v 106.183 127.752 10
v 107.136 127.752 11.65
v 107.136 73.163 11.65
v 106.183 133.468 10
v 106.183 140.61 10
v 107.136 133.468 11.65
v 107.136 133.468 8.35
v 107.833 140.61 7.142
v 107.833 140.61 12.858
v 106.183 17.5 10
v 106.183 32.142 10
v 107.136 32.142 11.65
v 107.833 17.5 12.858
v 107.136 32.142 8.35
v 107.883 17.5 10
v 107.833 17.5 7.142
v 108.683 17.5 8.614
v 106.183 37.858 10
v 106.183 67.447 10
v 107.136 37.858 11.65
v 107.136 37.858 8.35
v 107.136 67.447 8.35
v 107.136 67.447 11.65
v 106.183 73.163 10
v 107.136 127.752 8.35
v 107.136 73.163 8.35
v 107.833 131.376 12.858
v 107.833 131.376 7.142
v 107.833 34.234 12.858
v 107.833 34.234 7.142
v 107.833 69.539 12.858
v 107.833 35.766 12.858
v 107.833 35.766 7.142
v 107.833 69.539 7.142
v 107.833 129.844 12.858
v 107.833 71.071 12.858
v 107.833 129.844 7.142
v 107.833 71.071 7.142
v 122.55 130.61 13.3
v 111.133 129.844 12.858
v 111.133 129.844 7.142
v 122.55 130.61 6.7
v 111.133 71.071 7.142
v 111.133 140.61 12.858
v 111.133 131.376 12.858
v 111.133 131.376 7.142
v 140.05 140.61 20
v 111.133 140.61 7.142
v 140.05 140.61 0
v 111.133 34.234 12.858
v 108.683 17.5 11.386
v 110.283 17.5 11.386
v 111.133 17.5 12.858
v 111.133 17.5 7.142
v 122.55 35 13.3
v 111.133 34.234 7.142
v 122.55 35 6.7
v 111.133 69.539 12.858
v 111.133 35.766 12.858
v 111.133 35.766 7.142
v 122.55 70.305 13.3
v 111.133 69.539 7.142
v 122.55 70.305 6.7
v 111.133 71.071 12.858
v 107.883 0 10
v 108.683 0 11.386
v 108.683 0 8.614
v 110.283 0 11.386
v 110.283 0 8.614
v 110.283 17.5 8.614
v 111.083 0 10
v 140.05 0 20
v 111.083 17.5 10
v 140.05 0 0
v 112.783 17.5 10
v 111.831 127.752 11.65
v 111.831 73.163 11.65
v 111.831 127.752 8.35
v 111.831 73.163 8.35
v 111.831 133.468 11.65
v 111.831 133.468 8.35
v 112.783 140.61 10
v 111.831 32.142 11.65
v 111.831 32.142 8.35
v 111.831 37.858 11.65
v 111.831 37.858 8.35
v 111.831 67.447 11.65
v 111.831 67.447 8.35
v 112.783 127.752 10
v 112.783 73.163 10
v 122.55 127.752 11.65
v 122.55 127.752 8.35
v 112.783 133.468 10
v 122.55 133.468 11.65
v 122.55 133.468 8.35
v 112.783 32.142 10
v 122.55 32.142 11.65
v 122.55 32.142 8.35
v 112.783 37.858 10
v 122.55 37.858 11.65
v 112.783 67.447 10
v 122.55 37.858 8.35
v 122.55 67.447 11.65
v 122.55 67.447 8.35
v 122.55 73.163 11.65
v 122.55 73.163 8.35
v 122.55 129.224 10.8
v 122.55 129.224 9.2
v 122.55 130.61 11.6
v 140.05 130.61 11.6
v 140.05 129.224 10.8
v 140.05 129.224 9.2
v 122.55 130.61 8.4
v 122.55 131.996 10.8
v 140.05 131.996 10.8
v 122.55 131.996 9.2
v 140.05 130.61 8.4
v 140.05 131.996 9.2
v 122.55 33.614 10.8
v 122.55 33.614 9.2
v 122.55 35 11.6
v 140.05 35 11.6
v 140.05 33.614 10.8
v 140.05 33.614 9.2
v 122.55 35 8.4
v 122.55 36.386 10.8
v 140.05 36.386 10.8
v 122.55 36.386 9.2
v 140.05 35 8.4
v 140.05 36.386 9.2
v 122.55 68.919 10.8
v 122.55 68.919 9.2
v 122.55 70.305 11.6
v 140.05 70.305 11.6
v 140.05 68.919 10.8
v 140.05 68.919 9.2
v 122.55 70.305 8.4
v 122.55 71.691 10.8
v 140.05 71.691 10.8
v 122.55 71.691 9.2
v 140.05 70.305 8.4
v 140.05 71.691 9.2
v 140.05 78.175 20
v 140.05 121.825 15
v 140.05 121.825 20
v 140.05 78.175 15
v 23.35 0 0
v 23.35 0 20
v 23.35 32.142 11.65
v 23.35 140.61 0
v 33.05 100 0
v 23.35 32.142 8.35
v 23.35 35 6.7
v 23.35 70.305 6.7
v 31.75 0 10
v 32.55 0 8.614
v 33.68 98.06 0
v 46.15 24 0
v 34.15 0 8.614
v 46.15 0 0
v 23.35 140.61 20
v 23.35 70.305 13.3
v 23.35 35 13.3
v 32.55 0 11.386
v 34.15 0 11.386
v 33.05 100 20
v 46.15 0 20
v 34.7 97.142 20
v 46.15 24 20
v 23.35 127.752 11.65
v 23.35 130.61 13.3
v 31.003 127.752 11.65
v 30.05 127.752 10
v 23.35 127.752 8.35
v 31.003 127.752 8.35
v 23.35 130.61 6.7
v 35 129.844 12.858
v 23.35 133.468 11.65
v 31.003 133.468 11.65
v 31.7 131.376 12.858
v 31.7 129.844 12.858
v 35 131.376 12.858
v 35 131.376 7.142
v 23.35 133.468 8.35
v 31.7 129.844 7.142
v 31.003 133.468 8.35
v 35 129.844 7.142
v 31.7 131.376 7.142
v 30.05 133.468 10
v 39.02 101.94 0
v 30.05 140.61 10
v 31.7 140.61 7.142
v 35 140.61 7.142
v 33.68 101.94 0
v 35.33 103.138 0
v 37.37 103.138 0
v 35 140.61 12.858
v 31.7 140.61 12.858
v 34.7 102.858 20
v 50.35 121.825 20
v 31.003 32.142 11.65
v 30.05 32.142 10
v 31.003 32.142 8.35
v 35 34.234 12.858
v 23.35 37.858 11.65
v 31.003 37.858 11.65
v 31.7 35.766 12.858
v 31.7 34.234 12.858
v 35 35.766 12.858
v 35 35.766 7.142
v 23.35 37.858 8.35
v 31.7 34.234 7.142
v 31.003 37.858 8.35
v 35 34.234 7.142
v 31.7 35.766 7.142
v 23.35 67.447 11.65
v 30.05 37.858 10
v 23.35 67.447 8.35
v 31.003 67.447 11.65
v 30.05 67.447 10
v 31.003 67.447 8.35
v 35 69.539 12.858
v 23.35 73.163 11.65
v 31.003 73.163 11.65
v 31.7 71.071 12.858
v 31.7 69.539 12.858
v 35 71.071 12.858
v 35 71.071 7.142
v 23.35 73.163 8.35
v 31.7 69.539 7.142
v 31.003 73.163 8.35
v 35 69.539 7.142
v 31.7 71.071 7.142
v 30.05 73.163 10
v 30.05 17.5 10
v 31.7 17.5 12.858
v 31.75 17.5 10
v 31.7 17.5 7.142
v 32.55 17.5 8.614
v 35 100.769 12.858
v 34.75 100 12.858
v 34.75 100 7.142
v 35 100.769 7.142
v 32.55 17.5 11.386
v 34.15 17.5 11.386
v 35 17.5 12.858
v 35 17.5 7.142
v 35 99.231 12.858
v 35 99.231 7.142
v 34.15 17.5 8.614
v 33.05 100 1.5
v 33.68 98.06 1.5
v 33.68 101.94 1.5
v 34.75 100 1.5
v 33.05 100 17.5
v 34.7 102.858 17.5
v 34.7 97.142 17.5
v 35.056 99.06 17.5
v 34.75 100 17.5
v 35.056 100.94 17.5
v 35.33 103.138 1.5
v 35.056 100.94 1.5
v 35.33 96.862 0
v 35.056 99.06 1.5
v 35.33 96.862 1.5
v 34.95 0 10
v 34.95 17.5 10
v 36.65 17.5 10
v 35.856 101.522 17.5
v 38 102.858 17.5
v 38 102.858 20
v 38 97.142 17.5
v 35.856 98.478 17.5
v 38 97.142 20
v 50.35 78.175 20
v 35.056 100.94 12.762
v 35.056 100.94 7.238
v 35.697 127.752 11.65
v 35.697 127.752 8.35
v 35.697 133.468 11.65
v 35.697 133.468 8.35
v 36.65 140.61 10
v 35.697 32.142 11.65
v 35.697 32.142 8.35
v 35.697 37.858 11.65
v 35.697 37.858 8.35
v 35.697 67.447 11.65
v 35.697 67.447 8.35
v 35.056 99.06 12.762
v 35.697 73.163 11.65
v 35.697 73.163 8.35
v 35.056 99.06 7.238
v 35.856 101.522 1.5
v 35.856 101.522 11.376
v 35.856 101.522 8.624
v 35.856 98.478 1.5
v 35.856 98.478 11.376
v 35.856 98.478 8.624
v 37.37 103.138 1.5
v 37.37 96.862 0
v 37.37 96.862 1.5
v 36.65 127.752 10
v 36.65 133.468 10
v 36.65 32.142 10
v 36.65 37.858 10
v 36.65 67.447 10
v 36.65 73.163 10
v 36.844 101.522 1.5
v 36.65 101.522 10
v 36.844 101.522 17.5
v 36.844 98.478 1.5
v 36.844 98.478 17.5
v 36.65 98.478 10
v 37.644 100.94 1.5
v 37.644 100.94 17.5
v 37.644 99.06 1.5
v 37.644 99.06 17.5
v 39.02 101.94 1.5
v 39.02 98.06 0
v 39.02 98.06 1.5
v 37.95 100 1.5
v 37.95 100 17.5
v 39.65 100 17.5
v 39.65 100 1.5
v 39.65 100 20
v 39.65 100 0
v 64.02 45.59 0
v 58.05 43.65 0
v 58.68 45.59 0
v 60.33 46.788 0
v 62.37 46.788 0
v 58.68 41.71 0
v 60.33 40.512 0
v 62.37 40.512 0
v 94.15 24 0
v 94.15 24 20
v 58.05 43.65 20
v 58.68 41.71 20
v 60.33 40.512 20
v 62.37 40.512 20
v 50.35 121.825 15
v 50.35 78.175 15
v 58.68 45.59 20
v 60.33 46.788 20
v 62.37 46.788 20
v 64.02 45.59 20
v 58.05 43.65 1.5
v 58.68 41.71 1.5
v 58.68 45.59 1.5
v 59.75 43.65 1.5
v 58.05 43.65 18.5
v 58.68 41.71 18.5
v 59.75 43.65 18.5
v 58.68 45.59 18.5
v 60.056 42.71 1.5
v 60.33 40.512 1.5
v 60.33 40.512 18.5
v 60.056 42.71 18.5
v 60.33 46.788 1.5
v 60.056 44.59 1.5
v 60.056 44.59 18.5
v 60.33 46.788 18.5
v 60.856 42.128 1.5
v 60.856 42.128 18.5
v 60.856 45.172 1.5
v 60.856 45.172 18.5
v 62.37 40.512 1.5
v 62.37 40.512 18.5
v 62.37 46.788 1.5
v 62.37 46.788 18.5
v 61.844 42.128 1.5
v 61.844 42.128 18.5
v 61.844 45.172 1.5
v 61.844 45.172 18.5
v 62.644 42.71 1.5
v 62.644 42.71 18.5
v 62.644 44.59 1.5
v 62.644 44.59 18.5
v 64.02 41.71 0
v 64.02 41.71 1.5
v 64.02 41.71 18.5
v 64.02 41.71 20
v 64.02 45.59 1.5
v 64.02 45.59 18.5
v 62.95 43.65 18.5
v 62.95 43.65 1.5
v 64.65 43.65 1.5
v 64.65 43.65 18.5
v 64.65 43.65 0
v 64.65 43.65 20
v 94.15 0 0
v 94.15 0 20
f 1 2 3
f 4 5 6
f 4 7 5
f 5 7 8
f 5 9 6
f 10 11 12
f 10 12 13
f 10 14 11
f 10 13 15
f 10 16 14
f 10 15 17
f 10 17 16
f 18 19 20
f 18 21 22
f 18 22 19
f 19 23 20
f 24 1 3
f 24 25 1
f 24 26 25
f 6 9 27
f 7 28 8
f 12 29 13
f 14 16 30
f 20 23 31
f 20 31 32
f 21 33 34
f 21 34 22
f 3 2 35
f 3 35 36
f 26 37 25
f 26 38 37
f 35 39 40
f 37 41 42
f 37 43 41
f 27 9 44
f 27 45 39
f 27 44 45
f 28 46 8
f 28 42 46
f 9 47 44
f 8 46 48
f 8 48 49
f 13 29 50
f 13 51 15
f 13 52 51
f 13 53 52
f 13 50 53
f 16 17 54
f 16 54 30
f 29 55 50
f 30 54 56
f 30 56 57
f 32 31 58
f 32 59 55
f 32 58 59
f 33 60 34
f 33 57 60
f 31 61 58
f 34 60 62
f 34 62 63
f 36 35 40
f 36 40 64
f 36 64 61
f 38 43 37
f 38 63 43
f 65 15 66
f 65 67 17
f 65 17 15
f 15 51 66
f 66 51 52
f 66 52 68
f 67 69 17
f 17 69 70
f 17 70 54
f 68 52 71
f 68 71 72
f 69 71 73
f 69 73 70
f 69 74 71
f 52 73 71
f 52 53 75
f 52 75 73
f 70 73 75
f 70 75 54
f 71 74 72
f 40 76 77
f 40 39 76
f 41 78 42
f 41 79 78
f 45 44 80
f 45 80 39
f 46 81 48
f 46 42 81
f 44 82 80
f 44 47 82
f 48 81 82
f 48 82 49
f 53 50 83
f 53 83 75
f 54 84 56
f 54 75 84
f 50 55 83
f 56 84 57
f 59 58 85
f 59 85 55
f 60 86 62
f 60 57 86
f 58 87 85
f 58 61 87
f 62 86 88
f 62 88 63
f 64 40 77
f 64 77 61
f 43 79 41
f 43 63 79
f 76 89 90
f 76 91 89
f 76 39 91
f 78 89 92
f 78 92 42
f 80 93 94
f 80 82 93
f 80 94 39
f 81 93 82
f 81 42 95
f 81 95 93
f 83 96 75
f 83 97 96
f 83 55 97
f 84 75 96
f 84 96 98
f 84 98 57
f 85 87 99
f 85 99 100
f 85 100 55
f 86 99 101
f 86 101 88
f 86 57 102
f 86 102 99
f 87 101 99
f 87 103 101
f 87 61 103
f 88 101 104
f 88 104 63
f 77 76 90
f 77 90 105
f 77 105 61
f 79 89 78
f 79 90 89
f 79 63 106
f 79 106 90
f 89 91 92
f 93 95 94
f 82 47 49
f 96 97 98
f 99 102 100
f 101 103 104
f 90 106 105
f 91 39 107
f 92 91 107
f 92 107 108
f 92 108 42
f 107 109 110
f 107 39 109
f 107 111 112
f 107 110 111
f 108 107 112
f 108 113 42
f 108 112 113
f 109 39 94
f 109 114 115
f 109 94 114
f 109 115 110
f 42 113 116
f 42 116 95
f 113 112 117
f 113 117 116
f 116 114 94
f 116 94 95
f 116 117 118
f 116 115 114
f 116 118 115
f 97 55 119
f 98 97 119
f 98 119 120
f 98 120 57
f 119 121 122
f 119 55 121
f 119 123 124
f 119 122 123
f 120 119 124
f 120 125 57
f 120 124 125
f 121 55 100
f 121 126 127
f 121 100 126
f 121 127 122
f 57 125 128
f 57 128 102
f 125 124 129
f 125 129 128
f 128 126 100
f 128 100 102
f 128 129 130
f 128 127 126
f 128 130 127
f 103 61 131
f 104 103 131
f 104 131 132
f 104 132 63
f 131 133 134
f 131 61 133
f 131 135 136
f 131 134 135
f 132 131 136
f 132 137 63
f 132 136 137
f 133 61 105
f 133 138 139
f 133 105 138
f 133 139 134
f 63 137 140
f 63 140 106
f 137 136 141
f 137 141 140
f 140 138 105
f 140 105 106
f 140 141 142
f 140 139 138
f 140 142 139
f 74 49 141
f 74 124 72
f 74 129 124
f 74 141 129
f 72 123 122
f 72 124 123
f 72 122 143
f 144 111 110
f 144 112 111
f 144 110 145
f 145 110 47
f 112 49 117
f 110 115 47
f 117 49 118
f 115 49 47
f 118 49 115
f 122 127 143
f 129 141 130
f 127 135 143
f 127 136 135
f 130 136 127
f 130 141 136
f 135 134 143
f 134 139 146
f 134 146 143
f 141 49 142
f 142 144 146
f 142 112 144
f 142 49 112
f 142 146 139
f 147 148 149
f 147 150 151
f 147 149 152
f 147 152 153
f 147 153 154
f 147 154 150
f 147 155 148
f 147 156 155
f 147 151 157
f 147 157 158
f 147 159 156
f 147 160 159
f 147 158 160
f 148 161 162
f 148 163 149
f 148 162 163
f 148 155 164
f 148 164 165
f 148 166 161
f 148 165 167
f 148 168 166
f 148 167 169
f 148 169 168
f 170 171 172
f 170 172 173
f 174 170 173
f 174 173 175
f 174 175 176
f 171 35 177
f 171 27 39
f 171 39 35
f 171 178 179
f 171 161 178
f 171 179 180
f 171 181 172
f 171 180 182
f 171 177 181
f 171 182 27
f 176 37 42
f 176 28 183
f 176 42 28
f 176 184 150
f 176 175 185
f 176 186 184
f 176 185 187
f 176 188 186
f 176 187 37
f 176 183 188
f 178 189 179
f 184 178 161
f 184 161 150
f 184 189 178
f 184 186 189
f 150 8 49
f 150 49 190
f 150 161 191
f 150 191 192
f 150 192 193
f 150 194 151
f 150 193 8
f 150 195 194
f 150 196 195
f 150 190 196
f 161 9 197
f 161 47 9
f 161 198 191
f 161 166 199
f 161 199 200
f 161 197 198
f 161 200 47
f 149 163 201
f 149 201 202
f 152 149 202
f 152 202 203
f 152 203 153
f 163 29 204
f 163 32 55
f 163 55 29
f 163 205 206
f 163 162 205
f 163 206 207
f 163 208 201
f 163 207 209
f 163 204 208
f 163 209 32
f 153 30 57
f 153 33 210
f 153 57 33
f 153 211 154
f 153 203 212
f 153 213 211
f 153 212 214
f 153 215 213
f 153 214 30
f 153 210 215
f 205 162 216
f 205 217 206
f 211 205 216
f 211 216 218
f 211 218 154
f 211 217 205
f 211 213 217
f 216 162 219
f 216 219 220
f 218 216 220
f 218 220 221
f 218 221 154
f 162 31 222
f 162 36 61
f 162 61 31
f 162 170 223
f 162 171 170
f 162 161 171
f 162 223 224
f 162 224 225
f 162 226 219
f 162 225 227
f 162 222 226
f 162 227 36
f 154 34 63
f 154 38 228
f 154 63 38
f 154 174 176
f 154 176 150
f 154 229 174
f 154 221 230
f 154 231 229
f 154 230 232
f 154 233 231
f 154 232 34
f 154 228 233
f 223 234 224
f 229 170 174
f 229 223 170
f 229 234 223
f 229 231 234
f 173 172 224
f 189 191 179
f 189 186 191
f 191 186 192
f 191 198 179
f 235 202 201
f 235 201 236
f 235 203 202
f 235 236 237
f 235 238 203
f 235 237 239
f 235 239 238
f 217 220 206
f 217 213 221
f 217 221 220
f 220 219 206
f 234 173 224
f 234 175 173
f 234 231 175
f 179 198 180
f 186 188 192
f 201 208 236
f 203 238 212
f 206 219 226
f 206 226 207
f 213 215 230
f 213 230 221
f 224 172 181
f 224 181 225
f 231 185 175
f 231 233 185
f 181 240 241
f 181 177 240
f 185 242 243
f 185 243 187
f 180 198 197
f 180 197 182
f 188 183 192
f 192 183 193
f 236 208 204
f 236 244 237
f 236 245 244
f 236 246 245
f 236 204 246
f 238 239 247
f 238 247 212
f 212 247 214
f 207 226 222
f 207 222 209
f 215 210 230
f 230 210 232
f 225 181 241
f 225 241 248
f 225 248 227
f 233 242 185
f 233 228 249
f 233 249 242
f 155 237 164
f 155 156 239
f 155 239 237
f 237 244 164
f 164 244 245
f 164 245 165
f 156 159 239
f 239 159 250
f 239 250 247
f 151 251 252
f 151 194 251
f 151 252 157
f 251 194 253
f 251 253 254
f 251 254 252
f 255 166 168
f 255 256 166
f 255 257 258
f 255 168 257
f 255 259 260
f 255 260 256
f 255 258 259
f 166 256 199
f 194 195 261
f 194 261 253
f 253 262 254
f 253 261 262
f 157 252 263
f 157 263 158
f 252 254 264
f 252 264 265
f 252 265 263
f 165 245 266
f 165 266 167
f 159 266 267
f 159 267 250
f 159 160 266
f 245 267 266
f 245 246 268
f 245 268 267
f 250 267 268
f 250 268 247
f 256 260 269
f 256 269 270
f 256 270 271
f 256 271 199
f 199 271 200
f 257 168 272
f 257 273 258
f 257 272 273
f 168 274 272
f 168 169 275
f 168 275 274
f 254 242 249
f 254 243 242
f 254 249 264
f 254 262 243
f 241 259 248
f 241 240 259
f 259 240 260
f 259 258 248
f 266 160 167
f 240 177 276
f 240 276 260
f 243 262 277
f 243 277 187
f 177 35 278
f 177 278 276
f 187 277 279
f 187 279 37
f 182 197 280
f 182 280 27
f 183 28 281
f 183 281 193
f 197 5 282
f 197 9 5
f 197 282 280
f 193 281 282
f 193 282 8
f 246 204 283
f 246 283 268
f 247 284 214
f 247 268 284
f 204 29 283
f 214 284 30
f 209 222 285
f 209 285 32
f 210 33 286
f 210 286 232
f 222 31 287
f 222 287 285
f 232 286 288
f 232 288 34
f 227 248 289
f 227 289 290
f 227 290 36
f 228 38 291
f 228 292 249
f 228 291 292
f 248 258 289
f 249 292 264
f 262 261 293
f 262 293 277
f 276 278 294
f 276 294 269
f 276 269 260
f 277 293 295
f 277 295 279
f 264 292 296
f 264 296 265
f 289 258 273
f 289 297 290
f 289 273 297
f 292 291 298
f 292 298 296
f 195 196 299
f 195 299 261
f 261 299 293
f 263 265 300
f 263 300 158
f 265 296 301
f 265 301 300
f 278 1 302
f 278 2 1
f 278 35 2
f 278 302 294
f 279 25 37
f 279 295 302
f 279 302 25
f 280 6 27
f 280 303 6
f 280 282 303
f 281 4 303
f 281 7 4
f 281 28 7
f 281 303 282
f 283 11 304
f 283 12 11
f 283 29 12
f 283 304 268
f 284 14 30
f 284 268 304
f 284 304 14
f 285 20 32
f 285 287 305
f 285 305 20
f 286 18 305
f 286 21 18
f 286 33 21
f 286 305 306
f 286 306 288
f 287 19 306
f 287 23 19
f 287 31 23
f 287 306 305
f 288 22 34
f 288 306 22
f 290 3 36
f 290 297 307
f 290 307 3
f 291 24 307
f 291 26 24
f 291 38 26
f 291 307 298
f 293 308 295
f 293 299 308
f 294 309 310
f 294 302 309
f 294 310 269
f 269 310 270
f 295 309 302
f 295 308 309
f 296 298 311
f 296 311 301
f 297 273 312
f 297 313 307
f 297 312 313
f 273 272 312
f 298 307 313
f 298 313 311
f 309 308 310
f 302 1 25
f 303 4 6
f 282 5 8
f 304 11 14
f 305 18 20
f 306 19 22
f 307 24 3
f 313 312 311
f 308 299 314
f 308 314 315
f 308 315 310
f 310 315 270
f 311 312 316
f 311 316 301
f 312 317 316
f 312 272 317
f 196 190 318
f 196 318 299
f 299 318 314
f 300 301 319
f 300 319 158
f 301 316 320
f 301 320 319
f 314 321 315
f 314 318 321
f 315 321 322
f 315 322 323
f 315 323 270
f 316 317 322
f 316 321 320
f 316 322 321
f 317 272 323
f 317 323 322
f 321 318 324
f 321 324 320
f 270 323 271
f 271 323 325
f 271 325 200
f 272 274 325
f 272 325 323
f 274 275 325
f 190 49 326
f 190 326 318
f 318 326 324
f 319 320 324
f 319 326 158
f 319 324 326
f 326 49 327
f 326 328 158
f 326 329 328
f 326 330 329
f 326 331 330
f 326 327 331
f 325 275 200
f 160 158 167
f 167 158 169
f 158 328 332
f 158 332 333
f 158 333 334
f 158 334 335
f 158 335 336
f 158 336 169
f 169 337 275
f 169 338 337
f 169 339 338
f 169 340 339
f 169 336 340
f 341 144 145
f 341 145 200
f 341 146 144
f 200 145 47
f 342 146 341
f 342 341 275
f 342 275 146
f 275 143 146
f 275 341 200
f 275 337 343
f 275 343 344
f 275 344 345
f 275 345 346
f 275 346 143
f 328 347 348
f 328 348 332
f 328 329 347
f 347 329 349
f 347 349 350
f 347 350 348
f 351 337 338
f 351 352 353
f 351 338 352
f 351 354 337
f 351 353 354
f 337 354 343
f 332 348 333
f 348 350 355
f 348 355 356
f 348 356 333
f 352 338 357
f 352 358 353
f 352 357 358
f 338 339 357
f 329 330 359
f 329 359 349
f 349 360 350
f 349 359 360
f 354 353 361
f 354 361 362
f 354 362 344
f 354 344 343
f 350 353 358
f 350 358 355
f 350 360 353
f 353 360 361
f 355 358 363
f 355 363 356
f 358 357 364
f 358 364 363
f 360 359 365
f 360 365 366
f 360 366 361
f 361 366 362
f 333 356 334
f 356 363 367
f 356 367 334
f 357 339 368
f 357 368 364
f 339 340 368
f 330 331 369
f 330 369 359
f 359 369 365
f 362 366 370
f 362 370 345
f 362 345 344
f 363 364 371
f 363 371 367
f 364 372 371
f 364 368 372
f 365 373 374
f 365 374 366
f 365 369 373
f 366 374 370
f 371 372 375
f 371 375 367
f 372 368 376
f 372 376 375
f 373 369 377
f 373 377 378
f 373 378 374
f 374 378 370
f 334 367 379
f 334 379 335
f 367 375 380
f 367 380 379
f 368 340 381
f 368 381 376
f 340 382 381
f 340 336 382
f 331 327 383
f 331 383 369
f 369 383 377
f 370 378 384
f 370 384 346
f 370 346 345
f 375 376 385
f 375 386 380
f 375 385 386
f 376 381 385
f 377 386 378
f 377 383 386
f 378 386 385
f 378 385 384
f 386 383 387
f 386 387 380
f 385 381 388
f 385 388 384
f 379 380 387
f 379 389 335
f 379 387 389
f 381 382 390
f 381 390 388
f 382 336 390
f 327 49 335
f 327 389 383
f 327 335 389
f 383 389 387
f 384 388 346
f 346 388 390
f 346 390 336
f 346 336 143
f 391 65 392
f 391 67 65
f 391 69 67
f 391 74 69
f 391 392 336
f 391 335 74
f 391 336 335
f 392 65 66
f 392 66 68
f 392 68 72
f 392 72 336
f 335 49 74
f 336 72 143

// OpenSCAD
// file: ../888_1018.scad
include <../parameters.scad>
draft = true;

accumulator_plate_thickness = 20;
accumulator_plate_length = width_of_accumulator + accumulator_holder_width*3;
accumulator_plate_accumulator_axis_offset = 100; // how far from autogyro center pipe center of battery is.
accumulator_plate_move = -25; // posuv akumulatoru dozadu
accumulator_plate_width = accumulator_plate_accumulator_axis_offset + depth_of_accumulator;
accumulator_plate_bearing_sink = 6.4; // Jak moc bude zapuštěno ložisko pro připevnění na střechu auta.
//  cover_pilon_position
module 888_1018(draft){
  posun = move_of_accumulator + accumulator_holder_width/2 + accumulator_holder_thickness/2 + height_666_1026 + global_clearance/2;

rotate([0, 180, 180])
  translate([posun, 0, 0])
    difference(){

      hull(){
        translate([-accumulator_plate_length/2, -accumulator_plate_width, 0])
            cube([accumulator_plate_length, accumulator_plate_width, accumulator_plate_thickness]);
        translate([-accumulator_plate_length/2 + accumulator_plate_move, -accumulator_plate_width, 0])
            cube([accumulator_plate_length, accumulator_plate_width, accumulator_plate_thickness]);
      }

      #union (){
      //šrouby pro připevnění k letadlu
          translate([-width_of_accumulator/2 - accumulator_holder_width/2 - accumulator_holder_thickness/2, -height_of_accumulator, 0])
              cylinder(h = 100, r = M3_screw_diameter/2, $fn = draft ? 10 : 20, center = true);

          translate([width_of_accumulator/2 + accumulator_holder_width/2 + accumulator_holder_thickness/2, -height_of_accumulator, 0])
              cylinder(h = 100, r = M3_screw_diameter/2, $fn = draft ? 10 : 20, center = true);

      //Zapuštění hlav šroubů pro připevnění k letadlu
          translate([-width_of_accumulator/2 - accumulator_holder_width/2 - accumulator_holder_thickness/2, -height_of_accumulator, accumulator_plate_thickness])
              cylinder(h = M3_screw_head_height, d = M3_nut_diameter, $fn = draft ? 10 : 20, center = true);

          translate([width_of_accumulator/2 + accumulator_holder_width/2 + accumulator_holder_thickness/2, -height_of_accumulator, accumulator_plate_thickness])
              cylinder(h = M3_screw_head_height, d = M3_nut_diameter, $fn = draft ? 10 : 20, center = true);

      // odecteni kostky, v miste, kde je pripevnene kolecko
          translate([height_666_1026 - move_of_accumulator - width_of_accumulator/2 - 5, -5 - height_666_1004/2, - hull_y_size/2])
                 cube([coupling_width_666_1004 + 10, height_666_1004 + 10, hull_y_size]);
      }

      translate([accumulator_plate_move, 0, 0])
      union (){
        //akumulátor
          translate([-width_of_accumulator/2, -accumulator_plate_accumulator_axis_offset-height_of_accumulator/2, accumulator_plate_thickness - sink_of_accumulator])
              cube([width_of_accumulator, height_of_accumulator, depth_of_accumulator]);

        //šrouby pro připevnění akumulátorů
          translate([width_of_accumulator/2 + accumulator_holder_width/2 + accumulator_holder_thickness/2, -accumulator_plate_accumulator_axis_offset, 0])
              cylinder(h = 100, r = M3_screw_diameter/2, $fn = draft ? 10 : 20, center = true);

          translate([- width_of_accumulator/2 - accumulator_holder_width/2 - accumulator_holder_thickness/2, -accumulator_plate_accumulator_axis_offset, 0])
              cylinder(h = 100, r = M3_screw_diameter/2, $fn = draft ? 10 : 20, center = true);


          //díry pro zapuštění hlaviček šroubů
          translate([width_of_accumulator/2 + accumulator_holder_width/2 + accumulator_holder_thickness/2 - accumulator_plate_move, -height_of_accumulator, 0])
              cylinder(h = M3_screw_head_height, d = M3_nut_diameter, $fn = draft ? 10 : 20, center = true);

          translate([-width_of_accumulator/2 - accumulator_holder_width/2 - accumulator_holder_thickness/2 - accumulator_plate_move, -height_of_accumulator, 0])
              cylinder(h = M3_screw_head_height, d = M3_nut_diameter, $fn = draft ? 10 : 20, center = true);

          translate([width_of_accumulator/2 + accumulator_holder_width/2 + accumulator_holder_thickness/2, -accumulator_plate_accumulator_axis_offset, 0])
              cylinder(h = M3_screw_head_height, d = M3_nut_diameter, $fn = draft ? 10 : 20, center = true);

          translate([-width_of_accumulator/2 - accumulator_holder_width/2 - accumulator_holder_thickness/2, -accumulator_plate_accumulator_axis_offset, 0])
              cylinder(h = M3_screw_head_height, d = M3_nut_diameter, $fn = draft ? 10 : 20, center = true);

      // díry pro matky pro sroub drzici obruce pres baterie..
          translate([width_of_accumulator/2 + accumulator_holder_width/2 + accumulator_holder_thickness/2, -accumulator_plate_accumulator_axis_offset, accumulator_plate_thickness])
              cylinder(h = 5, d = M3_nut_diameter, $fn = 6, center = true);

          translate([-width_of_accumulator/2 - accumulator_holder_width/2 - accumulator_holder_thickness/2, -accumulator_plate_accumulator_axis_offset, accumulator_plate_thickness])
              cylinder(h = 5, d = M3_nut_diameter, $fn = 6, center = true);


        }

        // Srouby pro sesroubovani skrz....

        for (i=[accumulator_plate_length/2 - 20, accumulator_plate_length/7, -accumulator_plate_length/6, - accumulator_plate_length/2 + accumulator_plate_move + 10]) {
          translate([i, 0, accumulator_plate_thickness/2])
            union(){
              rotate([90,0,0])
                cylinder(d= M3_screw_diameter, h= 200);

            translate([0, -35/2, 0])
              rotate([90,0,0])
                cylinder(d= M3_nut_diameter, h= 200, $fn= 6);
            }
        }

        for (i=[-35, -accumulator_plate_width/2, -accumulator_plate_width+10]) {
          translate([0, i, accumulator_plate_thickness/2])
            union(){
              translate([-150, 0, 0])
                rotate([0,90,0])
                  cylinder(d= M3_screw_diameter, h= 300);

              translate([35/2, 0, 0])
                rotate([0,90,0])
                  cylinder(d= M3_nut_diameter, h= 200, $fn= 6);

              translate([-35/2 - 200, 0, 0])
                rotate([0,90,0])
                  cylinder(d= M3_nut_diameter, h= 200, $fn= 6);
            }
        }


    // pro přidělání příruby ložiska
    translate([-posun+center_of_gravity_position[0],center_of_gravity_position[1],-global_clearance/2]){
      cylinder(d = bearing_efsm_10_db+1, h=accumulator_plate_thickness + global_clearance);

      translate([- bearing_efsm_10_h / 2, - bearing_efsm_10_h / 2, accumulator_plate_thickness-accumulator_plate_bearing_sink])
        cube(bearing_efsm_10_h);

      for (i=[[1, 1], [-1, 1], [1, -1], [-1, -1]]) {
        translate([i[0]*bearing_efsm_10_m/2, i[1]*bearing_efsm_10_m/2, 0]){
          cylinder(d = bearing_efsm_10_n, h=accumulator_plate_thickness + global_clearance);
          rotate([0,0,-i[0]*15])
            cylinder(d = M5_nut_diameter, h= M5_head_height+1, $fn=6);
        }
      }
    }

    }
}


888_1018(draft);
mirror([0,1,0])
    888_1018(draft);
// main file
include <../../parameters.scad>
use <../888_1018.scad>

draft = false;

posuv = move_of_accumulator + accumulator_holder_width/2 + accumulator_holder_thickness/2 + height_666_1026 + global_clearance/2;

mirror([0,1,0])
  difference(){
    rotate([180, 0, 0])
      888_1018(1, draft);
    translate([posuv, -500+ global_clearance, -global_clearance])
      cube(500);
  }
